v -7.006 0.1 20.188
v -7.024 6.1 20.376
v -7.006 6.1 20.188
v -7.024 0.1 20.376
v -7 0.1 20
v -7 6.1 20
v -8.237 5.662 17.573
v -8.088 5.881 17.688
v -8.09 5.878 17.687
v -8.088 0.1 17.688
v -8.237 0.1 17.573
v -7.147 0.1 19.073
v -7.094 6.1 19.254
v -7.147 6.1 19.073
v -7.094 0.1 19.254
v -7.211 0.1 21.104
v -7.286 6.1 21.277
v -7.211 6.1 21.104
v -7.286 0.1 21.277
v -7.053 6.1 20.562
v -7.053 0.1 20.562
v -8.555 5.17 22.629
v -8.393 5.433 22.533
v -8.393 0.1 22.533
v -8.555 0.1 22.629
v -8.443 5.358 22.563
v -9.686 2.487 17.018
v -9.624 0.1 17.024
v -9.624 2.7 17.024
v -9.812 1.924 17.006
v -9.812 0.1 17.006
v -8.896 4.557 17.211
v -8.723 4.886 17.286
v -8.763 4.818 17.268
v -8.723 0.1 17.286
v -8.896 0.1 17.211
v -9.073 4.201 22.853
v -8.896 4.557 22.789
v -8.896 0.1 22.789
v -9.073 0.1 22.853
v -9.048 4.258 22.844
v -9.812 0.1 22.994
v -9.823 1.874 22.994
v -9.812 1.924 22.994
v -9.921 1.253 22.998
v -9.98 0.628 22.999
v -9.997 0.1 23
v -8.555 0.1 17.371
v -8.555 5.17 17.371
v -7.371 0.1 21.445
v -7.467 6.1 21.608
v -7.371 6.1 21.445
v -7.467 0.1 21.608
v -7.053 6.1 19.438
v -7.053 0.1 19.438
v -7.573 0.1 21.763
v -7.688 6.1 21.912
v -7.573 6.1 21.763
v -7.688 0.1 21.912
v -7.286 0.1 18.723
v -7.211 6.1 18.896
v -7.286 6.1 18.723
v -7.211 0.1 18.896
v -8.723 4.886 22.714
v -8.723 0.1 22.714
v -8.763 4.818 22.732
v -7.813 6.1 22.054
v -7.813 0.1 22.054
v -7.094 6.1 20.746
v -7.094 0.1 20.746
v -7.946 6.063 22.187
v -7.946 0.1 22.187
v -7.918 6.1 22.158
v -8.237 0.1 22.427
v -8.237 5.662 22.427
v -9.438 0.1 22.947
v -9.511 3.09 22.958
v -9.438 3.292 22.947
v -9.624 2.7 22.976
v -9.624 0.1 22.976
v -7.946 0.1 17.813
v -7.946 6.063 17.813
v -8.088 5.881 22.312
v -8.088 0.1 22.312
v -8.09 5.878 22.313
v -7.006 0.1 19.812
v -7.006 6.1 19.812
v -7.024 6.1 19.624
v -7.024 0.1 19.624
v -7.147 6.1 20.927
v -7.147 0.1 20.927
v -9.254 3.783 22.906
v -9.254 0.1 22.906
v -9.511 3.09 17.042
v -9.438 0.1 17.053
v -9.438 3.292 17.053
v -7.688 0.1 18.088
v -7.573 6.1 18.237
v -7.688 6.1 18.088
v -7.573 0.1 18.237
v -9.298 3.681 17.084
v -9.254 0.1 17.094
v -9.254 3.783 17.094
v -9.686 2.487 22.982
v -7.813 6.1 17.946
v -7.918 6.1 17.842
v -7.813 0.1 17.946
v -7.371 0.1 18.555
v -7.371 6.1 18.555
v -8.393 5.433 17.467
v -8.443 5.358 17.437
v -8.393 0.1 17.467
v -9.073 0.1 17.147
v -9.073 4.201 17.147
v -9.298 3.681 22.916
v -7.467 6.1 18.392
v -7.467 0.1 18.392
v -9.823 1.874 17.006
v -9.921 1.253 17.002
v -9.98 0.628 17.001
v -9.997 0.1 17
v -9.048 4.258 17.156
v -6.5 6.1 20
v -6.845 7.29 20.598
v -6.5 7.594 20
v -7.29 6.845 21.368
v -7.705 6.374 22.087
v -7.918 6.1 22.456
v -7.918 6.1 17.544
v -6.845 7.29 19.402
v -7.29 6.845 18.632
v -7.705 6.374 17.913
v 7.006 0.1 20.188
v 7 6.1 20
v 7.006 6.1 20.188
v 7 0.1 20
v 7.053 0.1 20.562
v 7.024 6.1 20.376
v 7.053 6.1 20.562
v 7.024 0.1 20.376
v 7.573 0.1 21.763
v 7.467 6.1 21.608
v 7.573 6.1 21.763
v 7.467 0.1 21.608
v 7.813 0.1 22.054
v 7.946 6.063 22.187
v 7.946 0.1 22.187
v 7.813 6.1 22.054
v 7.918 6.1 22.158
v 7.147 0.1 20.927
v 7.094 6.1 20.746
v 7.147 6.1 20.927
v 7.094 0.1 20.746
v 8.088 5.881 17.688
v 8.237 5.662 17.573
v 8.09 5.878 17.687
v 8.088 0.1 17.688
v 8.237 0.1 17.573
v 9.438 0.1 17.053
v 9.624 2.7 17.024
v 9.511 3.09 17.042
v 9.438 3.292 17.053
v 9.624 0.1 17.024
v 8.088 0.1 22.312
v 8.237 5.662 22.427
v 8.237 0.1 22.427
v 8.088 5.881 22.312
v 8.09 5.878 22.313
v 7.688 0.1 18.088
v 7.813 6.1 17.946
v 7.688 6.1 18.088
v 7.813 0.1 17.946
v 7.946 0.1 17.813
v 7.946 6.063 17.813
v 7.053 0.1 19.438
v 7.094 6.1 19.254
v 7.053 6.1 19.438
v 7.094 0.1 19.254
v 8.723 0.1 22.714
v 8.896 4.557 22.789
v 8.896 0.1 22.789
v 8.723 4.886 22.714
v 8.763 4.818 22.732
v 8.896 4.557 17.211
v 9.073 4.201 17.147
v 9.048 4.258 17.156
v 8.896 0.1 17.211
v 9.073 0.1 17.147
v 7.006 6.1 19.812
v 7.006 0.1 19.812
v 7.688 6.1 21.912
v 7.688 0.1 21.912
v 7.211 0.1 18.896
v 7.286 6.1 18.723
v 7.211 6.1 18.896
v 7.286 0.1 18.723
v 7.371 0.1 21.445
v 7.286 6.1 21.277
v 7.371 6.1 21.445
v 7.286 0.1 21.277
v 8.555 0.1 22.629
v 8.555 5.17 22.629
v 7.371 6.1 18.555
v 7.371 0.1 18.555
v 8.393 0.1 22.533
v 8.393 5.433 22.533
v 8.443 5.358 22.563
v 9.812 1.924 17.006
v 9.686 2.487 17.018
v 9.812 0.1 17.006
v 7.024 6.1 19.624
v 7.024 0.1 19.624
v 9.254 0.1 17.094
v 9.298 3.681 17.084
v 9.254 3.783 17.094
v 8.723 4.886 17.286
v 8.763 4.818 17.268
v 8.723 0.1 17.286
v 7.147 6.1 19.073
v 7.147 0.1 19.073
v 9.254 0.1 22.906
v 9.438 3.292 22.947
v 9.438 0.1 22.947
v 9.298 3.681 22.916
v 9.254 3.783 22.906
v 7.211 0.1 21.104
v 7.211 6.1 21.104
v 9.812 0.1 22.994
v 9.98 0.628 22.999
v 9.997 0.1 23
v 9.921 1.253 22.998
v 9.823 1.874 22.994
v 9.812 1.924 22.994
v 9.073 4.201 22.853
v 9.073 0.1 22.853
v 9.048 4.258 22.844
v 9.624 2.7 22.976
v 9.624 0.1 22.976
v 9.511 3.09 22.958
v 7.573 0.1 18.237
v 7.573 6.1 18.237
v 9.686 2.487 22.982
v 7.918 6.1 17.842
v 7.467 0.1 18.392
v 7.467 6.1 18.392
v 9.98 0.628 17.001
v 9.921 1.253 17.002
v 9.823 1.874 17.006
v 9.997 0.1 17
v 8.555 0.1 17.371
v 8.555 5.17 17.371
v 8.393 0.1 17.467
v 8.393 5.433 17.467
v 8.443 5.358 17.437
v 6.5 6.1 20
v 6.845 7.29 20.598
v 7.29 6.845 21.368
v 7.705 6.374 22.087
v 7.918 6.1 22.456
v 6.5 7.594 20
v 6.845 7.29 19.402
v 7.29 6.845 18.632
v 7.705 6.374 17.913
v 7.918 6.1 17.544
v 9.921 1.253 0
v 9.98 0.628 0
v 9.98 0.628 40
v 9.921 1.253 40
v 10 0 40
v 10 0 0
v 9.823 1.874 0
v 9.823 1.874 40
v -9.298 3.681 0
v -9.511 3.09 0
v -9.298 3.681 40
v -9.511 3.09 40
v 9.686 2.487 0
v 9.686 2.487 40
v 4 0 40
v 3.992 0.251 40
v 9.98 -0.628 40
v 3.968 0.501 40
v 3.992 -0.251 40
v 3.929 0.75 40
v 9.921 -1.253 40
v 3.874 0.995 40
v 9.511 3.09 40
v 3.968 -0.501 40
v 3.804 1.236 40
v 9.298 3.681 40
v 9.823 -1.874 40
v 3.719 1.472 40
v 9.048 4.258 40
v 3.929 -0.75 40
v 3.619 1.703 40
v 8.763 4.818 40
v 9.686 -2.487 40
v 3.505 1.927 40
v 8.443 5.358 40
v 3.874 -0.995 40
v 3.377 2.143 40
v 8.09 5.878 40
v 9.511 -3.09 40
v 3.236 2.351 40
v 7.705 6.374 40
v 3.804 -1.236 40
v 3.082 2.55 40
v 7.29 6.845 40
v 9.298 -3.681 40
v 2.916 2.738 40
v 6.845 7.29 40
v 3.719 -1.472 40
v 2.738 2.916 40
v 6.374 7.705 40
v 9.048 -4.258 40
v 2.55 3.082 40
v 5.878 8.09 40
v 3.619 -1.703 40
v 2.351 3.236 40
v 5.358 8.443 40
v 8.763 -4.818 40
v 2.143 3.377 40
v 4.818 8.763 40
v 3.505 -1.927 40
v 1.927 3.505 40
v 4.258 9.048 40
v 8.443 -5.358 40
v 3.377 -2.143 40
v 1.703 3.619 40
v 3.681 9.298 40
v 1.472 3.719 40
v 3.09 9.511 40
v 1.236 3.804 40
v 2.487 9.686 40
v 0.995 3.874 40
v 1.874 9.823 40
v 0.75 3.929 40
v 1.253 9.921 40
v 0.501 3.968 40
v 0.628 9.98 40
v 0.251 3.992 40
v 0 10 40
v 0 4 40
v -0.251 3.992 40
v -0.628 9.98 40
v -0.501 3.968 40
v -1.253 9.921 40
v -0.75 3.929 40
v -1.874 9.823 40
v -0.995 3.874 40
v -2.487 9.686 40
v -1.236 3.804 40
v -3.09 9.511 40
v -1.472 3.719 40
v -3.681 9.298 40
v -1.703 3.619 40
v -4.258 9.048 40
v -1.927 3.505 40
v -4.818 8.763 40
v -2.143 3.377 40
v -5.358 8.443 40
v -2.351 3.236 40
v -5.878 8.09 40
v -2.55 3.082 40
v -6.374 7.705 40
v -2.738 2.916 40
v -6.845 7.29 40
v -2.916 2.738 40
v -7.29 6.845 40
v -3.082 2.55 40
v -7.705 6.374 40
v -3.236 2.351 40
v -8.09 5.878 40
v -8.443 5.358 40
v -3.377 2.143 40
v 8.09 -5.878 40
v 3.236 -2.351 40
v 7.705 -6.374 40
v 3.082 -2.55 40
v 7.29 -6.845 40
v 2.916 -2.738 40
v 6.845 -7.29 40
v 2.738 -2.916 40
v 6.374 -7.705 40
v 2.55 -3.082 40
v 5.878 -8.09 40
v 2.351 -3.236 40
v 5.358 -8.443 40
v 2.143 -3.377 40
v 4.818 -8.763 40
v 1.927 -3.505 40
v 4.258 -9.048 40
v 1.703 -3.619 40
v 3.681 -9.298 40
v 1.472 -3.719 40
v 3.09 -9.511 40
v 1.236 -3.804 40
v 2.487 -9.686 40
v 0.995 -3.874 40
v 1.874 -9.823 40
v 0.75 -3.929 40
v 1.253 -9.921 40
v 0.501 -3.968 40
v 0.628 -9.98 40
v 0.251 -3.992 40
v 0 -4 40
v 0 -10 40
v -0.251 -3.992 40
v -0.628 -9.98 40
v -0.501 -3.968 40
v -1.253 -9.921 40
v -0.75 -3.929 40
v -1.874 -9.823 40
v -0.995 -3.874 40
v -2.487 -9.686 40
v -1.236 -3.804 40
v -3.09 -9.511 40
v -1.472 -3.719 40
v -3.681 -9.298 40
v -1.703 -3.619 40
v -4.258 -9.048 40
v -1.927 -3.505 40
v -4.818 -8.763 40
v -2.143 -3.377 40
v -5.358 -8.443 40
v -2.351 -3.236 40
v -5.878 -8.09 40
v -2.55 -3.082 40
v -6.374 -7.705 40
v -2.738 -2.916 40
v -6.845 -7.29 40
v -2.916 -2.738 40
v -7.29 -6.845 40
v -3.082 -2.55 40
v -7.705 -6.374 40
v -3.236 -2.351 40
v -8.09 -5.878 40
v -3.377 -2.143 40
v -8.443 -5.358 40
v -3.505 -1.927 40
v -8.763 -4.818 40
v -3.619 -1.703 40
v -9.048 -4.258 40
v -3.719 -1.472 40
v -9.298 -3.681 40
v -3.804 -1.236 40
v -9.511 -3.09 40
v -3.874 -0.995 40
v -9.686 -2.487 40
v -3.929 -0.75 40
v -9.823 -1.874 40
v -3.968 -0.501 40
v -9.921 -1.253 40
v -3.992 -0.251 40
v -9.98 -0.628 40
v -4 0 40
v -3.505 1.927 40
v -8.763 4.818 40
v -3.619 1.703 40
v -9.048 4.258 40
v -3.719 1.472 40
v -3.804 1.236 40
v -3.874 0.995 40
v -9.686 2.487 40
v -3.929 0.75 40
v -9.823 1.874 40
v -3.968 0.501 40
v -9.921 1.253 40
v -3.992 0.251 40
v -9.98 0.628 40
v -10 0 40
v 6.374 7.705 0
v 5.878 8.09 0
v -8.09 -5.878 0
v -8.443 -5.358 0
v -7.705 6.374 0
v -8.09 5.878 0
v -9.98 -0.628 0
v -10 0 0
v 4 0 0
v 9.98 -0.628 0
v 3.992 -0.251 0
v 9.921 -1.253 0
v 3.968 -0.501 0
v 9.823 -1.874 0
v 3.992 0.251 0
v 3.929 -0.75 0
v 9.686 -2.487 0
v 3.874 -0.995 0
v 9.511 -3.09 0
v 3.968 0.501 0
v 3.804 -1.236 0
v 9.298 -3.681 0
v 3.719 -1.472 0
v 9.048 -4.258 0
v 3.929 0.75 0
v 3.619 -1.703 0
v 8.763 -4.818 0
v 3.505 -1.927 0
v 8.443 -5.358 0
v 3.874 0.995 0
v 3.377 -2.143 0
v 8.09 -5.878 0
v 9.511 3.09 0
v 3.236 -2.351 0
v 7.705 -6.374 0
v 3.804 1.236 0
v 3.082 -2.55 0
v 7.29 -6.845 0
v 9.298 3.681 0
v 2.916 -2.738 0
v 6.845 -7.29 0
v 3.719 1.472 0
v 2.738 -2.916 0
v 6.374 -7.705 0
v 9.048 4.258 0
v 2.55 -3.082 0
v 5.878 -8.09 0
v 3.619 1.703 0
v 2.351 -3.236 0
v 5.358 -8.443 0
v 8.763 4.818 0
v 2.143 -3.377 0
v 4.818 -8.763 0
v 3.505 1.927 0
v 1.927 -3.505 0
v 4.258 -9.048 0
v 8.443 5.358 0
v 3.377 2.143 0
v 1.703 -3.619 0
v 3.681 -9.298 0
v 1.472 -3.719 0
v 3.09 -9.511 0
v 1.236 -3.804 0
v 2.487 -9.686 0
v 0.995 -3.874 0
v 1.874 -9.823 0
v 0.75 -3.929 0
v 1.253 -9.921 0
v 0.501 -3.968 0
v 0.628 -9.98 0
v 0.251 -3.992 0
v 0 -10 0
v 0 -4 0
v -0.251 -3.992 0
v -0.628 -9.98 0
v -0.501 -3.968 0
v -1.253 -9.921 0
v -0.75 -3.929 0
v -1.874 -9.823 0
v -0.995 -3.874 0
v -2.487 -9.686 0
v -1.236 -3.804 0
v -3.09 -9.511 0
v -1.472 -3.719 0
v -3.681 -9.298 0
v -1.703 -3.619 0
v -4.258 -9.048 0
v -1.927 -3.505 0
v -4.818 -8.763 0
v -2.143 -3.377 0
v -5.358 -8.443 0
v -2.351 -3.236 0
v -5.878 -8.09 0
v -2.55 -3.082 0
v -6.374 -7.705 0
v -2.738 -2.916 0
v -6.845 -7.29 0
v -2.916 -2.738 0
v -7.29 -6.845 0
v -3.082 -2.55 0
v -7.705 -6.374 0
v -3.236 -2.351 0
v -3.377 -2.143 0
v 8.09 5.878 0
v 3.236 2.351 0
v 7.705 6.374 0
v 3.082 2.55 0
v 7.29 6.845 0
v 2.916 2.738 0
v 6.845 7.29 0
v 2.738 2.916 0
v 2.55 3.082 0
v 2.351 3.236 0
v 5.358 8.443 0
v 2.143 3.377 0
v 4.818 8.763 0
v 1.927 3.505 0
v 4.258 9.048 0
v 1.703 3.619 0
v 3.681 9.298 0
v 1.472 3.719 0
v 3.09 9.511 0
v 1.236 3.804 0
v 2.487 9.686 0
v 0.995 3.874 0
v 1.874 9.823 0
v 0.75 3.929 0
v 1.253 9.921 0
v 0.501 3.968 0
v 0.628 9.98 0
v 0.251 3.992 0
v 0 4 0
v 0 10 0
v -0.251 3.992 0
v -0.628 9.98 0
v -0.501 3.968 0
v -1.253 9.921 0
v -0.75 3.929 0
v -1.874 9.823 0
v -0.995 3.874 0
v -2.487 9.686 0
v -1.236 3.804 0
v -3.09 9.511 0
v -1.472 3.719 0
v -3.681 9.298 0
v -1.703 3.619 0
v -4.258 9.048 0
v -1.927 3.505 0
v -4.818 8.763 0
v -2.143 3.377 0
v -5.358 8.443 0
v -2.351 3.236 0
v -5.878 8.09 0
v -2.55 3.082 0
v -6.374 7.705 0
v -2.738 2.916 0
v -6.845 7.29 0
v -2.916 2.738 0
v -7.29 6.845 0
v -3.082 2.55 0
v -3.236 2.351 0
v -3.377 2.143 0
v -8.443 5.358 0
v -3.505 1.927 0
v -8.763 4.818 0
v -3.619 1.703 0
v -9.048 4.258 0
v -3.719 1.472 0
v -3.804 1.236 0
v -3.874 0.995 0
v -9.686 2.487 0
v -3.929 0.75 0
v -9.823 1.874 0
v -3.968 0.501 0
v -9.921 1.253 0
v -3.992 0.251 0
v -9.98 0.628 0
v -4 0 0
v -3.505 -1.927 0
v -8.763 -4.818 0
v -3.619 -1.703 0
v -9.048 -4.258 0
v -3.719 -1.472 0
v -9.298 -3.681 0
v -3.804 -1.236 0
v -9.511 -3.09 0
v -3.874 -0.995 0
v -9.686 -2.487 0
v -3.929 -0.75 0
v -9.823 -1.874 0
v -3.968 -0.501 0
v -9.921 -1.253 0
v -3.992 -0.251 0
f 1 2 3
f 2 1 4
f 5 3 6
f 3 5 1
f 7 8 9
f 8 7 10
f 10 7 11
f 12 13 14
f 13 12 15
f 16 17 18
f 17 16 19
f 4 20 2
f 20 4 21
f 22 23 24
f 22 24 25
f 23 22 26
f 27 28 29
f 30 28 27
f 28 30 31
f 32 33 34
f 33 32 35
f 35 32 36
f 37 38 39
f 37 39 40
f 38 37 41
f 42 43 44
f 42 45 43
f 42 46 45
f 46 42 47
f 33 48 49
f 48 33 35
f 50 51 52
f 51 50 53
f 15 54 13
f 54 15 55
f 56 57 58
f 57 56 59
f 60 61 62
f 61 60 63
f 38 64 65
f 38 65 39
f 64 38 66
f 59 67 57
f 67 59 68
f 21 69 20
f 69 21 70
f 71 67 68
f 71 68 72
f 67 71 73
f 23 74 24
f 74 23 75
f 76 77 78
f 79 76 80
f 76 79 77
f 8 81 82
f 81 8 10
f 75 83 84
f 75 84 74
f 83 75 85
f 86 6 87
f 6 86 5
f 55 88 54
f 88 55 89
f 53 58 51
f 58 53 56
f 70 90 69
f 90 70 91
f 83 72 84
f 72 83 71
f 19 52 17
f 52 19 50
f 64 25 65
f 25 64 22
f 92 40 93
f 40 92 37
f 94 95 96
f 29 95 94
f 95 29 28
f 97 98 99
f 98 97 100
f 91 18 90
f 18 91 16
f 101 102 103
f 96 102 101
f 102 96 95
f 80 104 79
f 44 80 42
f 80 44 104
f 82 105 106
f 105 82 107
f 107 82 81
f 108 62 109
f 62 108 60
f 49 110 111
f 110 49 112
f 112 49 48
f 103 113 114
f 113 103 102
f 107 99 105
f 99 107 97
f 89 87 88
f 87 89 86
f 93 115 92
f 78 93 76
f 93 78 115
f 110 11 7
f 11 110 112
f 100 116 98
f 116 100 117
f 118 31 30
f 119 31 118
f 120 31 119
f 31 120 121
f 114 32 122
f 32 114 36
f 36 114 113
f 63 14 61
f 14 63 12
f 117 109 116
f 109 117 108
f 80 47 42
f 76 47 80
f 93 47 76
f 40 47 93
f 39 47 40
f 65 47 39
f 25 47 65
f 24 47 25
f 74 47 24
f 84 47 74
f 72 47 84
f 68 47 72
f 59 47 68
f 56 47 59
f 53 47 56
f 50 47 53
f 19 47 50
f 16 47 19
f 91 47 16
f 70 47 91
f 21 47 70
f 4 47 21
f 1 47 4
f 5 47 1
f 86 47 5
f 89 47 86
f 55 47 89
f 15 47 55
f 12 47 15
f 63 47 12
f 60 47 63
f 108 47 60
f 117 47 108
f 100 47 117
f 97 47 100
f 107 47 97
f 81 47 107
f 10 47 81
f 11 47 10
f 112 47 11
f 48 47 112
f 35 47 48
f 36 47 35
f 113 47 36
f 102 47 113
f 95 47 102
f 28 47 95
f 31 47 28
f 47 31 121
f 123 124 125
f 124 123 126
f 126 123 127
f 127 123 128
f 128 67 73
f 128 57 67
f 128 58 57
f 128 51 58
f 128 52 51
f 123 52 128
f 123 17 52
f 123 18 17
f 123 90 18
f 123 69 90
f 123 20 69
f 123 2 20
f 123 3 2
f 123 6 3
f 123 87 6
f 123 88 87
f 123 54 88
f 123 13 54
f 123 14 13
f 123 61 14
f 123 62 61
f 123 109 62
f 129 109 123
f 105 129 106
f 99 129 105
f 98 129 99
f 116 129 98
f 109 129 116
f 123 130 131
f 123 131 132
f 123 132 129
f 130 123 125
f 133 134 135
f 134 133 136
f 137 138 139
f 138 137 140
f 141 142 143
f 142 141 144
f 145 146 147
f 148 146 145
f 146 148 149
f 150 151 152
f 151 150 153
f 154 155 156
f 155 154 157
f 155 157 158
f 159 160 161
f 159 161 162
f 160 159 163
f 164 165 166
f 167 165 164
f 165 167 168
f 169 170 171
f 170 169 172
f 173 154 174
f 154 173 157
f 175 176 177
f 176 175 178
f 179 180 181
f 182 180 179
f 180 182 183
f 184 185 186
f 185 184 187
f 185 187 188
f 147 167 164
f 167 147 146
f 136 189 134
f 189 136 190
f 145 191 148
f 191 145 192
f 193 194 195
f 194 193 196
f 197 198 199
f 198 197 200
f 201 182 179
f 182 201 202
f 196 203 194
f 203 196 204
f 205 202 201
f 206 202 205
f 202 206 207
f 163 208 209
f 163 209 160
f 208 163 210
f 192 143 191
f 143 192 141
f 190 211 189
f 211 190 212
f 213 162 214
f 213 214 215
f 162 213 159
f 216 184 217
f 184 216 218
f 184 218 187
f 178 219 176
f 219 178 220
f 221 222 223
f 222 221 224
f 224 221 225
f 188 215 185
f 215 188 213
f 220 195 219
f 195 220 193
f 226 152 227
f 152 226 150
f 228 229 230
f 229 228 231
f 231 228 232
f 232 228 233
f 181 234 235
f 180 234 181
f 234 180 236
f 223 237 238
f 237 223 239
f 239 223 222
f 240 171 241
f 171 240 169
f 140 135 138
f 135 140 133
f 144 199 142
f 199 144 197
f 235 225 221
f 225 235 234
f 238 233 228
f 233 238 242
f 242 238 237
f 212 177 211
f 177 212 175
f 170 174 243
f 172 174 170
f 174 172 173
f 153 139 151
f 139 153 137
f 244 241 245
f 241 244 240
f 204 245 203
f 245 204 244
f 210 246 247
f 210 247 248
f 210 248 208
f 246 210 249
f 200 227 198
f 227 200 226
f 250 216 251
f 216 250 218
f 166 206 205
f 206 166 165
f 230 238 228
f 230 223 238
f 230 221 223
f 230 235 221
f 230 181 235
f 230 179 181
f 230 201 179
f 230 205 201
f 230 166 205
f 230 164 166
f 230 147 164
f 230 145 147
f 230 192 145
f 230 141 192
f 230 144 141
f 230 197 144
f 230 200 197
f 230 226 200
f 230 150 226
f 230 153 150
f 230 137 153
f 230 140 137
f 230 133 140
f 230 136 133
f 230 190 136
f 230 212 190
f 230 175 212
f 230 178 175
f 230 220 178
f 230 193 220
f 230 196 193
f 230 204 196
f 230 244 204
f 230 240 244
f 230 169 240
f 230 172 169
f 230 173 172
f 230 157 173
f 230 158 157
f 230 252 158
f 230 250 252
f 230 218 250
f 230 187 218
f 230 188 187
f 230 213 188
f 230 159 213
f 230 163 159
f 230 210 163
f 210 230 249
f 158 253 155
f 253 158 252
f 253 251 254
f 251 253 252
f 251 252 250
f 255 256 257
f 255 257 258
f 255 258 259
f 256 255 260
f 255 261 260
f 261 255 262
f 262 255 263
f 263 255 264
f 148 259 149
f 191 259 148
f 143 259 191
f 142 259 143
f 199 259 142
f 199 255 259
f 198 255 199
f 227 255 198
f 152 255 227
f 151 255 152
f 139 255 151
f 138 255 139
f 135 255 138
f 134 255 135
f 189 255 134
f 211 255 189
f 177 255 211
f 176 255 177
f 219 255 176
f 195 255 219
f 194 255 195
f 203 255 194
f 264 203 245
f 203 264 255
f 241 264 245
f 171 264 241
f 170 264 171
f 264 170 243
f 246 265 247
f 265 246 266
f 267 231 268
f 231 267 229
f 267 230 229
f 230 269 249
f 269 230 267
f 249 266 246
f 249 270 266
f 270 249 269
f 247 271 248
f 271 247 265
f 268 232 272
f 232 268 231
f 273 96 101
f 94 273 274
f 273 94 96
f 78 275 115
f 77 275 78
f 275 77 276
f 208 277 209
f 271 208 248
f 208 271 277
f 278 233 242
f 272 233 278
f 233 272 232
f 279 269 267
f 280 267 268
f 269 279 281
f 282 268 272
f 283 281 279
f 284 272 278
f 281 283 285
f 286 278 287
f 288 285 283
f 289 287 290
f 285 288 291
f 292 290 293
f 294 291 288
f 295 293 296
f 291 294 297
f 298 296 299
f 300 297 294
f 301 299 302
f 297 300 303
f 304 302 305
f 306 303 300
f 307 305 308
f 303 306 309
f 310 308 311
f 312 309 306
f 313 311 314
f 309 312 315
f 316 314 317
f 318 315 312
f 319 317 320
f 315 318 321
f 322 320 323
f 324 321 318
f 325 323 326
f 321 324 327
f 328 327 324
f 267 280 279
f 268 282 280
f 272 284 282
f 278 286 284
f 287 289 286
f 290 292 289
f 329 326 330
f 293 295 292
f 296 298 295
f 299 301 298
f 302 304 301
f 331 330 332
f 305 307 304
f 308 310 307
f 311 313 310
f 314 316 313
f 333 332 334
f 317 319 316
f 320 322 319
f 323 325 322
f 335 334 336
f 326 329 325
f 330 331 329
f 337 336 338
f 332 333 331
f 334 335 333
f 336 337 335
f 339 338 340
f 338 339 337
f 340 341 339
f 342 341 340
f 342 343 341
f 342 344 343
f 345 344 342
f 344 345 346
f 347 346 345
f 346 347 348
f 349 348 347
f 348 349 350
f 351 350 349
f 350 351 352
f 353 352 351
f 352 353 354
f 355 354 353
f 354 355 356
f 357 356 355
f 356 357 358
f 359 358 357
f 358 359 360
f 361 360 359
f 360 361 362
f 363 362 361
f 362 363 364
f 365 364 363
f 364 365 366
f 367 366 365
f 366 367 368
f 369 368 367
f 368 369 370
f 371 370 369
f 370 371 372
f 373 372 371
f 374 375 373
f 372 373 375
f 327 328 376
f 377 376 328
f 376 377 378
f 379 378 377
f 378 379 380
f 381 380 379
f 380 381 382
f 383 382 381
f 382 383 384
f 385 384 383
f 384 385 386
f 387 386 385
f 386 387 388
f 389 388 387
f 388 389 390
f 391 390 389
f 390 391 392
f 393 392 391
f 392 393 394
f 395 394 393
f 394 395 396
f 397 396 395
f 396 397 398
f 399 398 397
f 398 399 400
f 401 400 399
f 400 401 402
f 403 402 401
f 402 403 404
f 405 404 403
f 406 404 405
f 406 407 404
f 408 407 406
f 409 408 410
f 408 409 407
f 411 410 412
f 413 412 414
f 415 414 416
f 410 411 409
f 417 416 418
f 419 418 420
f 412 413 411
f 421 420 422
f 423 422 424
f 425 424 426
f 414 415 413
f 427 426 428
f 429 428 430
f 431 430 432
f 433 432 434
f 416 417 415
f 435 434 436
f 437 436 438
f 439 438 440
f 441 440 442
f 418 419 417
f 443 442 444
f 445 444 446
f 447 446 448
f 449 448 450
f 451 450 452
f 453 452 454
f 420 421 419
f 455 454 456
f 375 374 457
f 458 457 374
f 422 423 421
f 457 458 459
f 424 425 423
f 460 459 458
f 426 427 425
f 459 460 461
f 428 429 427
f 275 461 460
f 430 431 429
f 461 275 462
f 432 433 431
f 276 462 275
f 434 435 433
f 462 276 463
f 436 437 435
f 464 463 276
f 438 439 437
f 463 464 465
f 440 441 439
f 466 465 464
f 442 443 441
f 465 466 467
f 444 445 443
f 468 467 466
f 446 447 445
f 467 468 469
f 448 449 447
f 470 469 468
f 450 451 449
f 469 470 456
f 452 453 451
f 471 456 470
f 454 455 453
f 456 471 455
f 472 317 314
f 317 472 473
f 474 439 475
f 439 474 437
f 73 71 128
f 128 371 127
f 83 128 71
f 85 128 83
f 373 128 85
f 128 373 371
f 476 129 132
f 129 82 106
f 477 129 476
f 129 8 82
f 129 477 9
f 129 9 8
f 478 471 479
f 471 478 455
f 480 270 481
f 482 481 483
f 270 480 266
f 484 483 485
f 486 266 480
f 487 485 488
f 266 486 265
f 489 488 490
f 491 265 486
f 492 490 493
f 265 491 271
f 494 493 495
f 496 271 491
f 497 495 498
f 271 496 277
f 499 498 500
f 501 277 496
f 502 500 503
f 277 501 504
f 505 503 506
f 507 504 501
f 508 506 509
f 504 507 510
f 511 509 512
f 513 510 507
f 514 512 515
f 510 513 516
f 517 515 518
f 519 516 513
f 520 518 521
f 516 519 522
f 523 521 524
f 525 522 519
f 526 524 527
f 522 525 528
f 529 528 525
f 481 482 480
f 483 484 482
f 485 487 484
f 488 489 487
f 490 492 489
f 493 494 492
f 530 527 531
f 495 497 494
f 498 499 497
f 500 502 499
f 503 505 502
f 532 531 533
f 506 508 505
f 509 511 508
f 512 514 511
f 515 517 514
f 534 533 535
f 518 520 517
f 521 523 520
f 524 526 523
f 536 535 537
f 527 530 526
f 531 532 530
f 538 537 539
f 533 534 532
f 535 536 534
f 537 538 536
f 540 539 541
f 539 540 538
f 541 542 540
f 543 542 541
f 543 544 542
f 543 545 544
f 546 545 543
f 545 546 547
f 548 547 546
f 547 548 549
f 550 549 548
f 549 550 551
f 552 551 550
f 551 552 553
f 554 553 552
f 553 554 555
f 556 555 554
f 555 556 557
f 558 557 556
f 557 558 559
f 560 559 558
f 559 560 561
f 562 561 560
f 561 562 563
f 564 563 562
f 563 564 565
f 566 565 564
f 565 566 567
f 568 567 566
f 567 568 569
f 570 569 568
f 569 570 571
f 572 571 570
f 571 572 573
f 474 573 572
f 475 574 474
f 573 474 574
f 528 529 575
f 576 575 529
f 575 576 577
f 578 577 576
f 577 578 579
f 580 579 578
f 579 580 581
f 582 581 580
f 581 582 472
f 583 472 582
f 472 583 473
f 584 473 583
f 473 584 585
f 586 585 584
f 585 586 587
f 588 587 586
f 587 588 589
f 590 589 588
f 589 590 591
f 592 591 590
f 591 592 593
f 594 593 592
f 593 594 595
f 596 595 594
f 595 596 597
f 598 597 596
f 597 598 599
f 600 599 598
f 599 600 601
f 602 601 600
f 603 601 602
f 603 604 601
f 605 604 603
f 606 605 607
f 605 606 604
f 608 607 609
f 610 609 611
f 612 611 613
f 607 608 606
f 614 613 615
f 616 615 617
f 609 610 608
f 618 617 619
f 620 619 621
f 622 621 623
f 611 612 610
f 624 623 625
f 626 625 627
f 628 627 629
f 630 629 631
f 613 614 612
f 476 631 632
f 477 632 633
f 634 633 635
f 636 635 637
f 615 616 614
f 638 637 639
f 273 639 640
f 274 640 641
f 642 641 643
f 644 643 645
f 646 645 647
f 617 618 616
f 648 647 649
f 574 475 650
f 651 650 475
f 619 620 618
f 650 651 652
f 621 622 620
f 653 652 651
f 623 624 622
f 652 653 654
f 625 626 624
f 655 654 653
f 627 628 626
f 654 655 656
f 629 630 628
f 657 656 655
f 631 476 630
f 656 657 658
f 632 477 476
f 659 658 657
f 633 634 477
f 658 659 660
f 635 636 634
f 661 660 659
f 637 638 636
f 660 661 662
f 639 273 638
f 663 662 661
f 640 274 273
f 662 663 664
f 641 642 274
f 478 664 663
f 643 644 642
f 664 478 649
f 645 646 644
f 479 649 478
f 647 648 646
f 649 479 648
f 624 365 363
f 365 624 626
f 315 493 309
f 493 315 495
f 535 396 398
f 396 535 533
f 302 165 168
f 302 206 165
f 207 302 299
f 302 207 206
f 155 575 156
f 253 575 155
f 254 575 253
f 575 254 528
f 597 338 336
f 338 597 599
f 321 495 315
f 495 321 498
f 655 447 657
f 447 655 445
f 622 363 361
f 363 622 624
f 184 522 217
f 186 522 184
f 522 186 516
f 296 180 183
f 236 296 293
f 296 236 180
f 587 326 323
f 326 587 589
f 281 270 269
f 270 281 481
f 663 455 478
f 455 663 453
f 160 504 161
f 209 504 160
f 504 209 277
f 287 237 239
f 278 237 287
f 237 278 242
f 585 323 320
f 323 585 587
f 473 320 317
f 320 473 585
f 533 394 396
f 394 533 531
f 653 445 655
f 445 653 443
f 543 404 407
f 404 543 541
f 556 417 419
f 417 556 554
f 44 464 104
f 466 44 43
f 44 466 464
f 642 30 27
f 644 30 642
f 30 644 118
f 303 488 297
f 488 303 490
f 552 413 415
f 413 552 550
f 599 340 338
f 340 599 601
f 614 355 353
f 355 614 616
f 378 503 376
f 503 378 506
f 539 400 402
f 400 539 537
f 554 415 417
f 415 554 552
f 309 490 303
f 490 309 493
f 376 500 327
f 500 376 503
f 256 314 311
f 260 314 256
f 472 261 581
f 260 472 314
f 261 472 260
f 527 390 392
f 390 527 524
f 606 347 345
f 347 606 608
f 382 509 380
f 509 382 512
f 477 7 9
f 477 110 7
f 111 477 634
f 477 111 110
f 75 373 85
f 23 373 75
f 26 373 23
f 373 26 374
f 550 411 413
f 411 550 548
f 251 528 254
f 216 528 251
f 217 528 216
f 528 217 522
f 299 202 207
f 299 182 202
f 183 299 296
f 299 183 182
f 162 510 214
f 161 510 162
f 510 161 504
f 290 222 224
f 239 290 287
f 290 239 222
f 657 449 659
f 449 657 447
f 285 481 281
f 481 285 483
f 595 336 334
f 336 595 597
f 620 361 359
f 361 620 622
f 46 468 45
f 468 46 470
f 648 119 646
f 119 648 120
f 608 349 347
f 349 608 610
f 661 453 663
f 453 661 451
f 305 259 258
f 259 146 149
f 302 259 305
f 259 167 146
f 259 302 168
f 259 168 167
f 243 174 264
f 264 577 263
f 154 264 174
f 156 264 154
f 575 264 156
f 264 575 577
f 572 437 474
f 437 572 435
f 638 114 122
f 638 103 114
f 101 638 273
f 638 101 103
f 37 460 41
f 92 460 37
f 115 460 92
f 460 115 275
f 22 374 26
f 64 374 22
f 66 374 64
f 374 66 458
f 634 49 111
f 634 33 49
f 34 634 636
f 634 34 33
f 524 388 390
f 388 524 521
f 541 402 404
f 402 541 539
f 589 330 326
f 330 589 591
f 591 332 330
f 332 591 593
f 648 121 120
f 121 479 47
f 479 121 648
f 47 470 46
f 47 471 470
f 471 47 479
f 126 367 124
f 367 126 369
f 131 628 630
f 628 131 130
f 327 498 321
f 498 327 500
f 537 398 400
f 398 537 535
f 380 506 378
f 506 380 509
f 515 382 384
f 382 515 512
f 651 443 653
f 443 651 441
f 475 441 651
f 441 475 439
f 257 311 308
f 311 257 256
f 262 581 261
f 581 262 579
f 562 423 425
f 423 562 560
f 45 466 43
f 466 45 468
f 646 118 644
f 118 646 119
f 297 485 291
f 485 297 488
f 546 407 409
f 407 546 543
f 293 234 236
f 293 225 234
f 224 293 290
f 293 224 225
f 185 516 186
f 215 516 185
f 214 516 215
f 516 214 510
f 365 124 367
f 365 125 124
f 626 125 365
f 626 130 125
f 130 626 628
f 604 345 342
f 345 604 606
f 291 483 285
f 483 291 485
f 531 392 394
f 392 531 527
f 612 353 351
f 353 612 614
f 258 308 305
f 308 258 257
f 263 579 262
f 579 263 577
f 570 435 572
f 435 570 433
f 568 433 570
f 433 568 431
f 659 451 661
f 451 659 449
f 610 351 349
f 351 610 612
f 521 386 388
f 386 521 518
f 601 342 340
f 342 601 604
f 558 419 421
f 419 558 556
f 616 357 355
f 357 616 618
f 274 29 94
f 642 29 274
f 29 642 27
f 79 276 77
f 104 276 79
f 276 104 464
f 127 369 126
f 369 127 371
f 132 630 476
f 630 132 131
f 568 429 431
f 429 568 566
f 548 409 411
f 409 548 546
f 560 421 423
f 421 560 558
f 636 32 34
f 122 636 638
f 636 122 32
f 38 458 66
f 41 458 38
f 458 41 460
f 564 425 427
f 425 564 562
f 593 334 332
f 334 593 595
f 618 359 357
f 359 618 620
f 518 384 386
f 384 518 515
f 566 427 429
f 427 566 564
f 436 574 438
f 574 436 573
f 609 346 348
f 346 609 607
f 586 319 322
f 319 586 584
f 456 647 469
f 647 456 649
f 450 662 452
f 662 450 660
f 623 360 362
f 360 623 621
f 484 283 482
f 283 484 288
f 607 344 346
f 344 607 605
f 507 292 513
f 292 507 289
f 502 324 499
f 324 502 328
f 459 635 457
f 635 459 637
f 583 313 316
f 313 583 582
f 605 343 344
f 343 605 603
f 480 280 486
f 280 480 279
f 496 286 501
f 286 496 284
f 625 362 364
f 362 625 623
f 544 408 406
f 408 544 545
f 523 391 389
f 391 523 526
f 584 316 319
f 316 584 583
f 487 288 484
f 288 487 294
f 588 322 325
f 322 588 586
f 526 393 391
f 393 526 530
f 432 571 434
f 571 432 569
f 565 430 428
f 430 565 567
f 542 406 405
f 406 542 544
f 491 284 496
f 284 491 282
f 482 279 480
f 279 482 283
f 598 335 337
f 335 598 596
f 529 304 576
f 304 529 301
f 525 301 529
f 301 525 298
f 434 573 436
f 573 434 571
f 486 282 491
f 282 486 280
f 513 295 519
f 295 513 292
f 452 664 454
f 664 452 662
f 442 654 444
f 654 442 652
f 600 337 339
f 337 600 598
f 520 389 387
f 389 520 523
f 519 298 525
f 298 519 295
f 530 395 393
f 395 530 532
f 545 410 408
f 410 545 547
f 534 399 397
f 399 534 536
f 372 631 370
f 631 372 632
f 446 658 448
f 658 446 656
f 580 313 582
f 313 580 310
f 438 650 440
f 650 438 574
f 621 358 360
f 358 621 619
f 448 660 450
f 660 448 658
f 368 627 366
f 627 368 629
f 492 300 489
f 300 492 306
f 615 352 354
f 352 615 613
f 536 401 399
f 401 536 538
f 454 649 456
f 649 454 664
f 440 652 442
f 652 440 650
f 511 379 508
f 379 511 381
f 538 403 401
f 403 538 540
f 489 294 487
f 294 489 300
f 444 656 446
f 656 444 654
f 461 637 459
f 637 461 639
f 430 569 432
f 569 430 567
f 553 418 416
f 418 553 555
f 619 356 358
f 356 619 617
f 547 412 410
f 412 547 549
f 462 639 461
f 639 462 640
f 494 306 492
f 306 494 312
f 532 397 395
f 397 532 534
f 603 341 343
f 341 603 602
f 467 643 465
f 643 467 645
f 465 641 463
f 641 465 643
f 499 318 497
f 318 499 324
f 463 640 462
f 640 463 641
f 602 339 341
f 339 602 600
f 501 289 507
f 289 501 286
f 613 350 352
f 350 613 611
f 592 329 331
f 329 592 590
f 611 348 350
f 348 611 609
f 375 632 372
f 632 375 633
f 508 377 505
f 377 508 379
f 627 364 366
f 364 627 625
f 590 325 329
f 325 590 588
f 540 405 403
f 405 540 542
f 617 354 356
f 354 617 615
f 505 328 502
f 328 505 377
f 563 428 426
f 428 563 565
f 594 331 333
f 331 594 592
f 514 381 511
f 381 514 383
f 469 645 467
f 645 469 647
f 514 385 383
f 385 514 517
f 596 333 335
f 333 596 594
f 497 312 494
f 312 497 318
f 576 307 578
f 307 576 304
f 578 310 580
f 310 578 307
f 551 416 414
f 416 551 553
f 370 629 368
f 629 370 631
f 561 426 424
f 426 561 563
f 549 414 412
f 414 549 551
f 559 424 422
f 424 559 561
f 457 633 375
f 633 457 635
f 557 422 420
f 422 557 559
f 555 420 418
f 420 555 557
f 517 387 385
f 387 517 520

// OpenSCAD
// Parameters
shaft_diameter = 20;
shaft_length = 40;
bore_diameter = 8;
screw_hole_diameter = 6;
screw_hole_depth = 10;
screw_offset = 10; // distance from center to screw holes
hex_radius = 3.5; // radius of hex socket
hex_depth = 4;

// Main shaft
difference() {
    // Outer cylinder
    cylinder(h = shaft_length, d = shaft_diameter, $fn = 100);

    // Central bore
    translate([0, 0, 0])
        cylinder(h = shaft_length, d = bore_diameter, $fn = 100);

    // Side screw holes (2x)
    for (i = [-1, 1]) {
        translate([i * screw_offset, shaft_diameter/2 + 0.1, shaft_length/2])
            rotate([90, 0, 0])
                cylinder(h = screw_hole_depth, d = screw_hole_diameter, $fn = 100);

        // Hex socket for screw
        translate([i * screw_offset, shaft_diameter/2 + 0.1, shaft_length/2])
            rotate([90, 0, 0])
                cylinder(h = hex_depth, r = hex_radius, $fn = 6);
    }
}
